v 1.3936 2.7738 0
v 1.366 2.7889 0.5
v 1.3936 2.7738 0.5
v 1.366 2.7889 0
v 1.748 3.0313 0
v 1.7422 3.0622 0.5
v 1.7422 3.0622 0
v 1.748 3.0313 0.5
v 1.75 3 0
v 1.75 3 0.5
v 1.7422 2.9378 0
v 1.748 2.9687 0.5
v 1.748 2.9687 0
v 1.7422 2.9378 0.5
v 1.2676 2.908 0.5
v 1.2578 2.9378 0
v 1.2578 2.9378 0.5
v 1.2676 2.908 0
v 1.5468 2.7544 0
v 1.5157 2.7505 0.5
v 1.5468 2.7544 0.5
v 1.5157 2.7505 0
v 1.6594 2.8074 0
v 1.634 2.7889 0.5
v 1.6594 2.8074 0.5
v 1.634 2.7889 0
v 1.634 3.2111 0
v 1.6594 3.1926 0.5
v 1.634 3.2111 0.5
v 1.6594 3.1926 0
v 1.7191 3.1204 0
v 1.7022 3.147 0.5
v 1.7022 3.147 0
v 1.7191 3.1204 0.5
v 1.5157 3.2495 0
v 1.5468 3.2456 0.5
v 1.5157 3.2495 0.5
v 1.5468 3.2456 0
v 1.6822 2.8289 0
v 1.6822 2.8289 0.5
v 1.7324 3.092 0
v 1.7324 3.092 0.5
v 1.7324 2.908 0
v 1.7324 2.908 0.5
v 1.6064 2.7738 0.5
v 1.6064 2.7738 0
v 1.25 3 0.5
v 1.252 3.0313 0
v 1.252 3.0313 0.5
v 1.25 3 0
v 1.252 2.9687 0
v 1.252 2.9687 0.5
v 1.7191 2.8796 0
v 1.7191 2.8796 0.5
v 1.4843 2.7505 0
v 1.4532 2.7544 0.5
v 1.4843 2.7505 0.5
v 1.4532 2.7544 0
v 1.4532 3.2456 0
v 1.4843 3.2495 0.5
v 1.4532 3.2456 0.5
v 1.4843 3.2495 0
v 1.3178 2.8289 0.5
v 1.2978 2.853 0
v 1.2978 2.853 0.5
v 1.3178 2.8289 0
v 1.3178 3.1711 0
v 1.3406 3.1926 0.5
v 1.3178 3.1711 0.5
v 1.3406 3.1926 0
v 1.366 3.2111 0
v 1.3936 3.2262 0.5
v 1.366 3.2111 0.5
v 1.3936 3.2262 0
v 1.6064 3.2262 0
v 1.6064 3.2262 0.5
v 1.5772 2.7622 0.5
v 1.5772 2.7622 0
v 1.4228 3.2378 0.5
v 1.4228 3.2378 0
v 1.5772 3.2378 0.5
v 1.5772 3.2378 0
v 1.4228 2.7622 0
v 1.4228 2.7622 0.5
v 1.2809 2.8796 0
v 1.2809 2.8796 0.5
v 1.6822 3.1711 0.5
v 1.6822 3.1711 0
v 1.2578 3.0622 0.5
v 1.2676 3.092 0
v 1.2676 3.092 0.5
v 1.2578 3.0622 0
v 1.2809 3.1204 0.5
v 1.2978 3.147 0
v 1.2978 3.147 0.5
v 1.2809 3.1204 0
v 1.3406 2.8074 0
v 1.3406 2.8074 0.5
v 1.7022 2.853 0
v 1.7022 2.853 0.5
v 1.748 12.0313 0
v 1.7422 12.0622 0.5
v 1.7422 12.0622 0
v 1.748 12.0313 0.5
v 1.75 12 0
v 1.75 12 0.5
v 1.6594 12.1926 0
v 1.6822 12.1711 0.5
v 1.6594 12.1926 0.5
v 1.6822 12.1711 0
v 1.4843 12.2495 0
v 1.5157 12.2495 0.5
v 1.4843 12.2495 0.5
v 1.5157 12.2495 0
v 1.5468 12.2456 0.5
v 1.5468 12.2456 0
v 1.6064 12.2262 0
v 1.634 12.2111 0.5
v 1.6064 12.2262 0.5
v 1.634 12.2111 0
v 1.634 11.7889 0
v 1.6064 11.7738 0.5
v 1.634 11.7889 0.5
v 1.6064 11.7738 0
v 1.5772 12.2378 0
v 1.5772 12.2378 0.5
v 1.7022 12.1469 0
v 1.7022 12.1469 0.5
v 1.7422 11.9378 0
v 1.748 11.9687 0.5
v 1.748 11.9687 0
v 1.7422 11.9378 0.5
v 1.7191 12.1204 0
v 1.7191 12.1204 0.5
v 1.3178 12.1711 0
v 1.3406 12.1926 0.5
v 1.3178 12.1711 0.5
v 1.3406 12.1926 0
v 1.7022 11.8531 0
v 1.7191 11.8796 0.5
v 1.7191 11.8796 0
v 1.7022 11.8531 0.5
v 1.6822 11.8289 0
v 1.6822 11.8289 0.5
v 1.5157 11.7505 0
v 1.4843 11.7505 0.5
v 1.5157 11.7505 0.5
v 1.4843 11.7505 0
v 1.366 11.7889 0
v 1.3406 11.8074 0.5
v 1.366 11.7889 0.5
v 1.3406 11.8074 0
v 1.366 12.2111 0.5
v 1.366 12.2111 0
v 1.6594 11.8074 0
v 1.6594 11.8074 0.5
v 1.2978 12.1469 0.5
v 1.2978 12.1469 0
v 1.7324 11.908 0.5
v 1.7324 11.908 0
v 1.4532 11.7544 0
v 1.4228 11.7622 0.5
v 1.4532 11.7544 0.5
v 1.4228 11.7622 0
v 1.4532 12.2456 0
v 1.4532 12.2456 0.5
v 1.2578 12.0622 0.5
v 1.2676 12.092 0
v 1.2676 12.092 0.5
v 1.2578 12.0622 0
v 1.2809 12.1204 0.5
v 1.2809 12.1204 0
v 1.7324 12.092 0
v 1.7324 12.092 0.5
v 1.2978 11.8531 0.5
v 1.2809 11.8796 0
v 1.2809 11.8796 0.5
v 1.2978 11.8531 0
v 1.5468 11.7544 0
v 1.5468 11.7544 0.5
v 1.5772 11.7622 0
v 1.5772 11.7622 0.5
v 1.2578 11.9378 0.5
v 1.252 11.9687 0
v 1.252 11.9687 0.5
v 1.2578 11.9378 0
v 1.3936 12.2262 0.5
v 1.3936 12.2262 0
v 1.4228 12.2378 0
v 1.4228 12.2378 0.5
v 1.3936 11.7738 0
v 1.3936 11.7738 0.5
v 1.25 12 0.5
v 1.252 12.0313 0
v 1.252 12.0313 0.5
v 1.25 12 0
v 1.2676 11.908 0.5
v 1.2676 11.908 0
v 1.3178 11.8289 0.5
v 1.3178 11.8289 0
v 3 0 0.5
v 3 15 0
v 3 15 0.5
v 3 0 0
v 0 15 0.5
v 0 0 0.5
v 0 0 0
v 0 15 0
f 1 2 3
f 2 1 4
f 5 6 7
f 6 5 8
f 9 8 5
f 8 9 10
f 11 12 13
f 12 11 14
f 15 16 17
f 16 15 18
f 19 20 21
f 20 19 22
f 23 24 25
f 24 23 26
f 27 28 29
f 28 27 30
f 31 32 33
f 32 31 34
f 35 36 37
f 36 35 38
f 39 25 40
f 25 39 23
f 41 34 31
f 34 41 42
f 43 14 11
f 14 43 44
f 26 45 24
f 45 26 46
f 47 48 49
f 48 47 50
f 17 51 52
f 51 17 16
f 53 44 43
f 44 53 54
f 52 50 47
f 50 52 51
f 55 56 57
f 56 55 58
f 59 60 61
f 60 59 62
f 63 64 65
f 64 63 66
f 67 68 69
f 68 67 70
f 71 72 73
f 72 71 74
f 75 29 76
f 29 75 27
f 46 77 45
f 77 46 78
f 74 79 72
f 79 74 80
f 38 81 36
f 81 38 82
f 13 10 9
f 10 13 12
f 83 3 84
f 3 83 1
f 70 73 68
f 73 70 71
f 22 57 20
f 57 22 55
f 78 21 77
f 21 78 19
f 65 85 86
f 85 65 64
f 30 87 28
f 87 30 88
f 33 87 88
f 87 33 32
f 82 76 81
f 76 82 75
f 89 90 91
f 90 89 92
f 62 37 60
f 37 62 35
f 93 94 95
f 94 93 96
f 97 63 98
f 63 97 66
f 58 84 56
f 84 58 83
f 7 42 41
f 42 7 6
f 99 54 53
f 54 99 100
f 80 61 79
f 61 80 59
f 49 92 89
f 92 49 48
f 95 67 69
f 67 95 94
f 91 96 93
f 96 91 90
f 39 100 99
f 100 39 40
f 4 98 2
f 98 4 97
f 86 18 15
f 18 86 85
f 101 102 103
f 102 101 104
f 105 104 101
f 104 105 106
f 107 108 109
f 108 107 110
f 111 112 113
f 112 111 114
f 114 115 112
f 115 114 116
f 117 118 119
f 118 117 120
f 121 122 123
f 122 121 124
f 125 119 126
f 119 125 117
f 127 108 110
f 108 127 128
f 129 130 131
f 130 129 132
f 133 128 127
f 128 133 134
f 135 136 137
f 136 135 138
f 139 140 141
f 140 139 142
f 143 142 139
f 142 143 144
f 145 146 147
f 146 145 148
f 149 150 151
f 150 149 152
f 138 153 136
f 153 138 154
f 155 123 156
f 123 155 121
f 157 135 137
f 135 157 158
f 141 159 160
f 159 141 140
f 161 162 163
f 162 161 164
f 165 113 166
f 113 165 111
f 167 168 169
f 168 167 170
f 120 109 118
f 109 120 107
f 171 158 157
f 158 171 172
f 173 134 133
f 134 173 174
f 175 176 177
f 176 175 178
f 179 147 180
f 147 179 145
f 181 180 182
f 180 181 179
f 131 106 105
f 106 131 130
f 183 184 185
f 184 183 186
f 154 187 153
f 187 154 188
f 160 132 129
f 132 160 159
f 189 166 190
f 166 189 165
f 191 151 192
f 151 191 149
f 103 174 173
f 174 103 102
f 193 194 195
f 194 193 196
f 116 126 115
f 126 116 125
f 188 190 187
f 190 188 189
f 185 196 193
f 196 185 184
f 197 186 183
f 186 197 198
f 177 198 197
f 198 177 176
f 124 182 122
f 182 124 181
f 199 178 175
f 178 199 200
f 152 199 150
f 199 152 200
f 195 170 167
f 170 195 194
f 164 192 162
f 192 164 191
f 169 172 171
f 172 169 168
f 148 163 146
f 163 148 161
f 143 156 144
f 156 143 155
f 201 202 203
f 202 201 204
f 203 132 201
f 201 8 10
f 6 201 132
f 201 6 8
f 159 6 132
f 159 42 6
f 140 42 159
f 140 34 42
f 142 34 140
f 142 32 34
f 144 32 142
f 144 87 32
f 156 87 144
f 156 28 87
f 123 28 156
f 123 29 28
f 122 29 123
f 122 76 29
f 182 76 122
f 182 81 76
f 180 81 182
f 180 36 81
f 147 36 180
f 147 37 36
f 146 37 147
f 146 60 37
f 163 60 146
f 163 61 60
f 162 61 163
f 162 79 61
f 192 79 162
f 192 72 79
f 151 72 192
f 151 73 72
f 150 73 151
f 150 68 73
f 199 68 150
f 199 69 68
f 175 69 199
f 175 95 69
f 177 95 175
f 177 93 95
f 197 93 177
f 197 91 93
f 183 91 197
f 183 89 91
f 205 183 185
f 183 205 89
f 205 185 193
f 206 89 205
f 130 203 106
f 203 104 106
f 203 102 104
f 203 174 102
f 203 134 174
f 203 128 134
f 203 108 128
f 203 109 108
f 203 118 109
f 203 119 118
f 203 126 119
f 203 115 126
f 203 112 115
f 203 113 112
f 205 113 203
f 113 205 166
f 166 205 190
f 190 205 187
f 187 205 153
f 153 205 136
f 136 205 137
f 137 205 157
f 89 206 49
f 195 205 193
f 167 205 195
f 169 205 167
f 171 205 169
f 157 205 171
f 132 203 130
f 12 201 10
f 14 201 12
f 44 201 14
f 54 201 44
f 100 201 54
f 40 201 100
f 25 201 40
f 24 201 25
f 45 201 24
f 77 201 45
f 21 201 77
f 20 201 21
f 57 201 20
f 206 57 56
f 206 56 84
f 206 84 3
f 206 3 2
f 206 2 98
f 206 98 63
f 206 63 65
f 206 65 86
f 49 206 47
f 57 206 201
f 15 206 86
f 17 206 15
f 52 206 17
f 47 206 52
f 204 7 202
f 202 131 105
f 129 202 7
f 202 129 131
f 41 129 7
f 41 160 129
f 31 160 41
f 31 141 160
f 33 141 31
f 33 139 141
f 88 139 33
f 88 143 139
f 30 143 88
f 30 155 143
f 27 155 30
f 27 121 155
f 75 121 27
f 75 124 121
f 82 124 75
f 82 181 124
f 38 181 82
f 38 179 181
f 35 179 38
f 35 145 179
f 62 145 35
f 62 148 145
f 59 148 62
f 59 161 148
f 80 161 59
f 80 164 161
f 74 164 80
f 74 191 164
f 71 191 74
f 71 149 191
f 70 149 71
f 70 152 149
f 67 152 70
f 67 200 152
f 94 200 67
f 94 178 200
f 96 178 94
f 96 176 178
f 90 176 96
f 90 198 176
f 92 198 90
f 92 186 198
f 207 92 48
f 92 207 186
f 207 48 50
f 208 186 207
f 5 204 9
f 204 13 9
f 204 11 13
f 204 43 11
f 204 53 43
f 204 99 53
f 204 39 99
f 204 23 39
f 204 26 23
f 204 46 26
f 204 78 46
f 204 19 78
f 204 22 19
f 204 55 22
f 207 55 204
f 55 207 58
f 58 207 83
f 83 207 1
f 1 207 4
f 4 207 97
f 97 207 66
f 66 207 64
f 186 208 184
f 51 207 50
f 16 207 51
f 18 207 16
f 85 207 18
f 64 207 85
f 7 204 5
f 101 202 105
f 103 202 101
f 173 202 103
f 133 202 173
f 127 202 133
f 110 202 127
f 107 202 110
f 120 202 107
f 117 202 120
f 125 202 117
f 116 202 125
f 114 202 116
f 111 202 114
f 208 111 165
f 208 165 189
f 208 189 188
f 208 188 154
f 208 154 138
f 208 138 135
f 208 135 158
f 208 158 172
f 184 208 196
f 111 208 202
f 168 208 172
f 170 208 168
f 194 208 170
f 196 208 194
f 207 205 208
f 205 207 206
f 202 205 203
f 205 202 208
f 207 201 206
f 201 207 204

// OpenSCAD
$fn=50;
strip_width=3;
strip_length=15;
strip_thickness=0.5;
difference(){
	cube([strip_width,strip_length,strip_thickness]);

	hole_distance = 9;
	translate([strip_width/2, strip_length/2-hole_distance/2, -2.5]){
		cylinder(d=0.5, h=5);
		translate([0,hole_distance,]) cylinder(d=0.5, h=5);
	}
}
